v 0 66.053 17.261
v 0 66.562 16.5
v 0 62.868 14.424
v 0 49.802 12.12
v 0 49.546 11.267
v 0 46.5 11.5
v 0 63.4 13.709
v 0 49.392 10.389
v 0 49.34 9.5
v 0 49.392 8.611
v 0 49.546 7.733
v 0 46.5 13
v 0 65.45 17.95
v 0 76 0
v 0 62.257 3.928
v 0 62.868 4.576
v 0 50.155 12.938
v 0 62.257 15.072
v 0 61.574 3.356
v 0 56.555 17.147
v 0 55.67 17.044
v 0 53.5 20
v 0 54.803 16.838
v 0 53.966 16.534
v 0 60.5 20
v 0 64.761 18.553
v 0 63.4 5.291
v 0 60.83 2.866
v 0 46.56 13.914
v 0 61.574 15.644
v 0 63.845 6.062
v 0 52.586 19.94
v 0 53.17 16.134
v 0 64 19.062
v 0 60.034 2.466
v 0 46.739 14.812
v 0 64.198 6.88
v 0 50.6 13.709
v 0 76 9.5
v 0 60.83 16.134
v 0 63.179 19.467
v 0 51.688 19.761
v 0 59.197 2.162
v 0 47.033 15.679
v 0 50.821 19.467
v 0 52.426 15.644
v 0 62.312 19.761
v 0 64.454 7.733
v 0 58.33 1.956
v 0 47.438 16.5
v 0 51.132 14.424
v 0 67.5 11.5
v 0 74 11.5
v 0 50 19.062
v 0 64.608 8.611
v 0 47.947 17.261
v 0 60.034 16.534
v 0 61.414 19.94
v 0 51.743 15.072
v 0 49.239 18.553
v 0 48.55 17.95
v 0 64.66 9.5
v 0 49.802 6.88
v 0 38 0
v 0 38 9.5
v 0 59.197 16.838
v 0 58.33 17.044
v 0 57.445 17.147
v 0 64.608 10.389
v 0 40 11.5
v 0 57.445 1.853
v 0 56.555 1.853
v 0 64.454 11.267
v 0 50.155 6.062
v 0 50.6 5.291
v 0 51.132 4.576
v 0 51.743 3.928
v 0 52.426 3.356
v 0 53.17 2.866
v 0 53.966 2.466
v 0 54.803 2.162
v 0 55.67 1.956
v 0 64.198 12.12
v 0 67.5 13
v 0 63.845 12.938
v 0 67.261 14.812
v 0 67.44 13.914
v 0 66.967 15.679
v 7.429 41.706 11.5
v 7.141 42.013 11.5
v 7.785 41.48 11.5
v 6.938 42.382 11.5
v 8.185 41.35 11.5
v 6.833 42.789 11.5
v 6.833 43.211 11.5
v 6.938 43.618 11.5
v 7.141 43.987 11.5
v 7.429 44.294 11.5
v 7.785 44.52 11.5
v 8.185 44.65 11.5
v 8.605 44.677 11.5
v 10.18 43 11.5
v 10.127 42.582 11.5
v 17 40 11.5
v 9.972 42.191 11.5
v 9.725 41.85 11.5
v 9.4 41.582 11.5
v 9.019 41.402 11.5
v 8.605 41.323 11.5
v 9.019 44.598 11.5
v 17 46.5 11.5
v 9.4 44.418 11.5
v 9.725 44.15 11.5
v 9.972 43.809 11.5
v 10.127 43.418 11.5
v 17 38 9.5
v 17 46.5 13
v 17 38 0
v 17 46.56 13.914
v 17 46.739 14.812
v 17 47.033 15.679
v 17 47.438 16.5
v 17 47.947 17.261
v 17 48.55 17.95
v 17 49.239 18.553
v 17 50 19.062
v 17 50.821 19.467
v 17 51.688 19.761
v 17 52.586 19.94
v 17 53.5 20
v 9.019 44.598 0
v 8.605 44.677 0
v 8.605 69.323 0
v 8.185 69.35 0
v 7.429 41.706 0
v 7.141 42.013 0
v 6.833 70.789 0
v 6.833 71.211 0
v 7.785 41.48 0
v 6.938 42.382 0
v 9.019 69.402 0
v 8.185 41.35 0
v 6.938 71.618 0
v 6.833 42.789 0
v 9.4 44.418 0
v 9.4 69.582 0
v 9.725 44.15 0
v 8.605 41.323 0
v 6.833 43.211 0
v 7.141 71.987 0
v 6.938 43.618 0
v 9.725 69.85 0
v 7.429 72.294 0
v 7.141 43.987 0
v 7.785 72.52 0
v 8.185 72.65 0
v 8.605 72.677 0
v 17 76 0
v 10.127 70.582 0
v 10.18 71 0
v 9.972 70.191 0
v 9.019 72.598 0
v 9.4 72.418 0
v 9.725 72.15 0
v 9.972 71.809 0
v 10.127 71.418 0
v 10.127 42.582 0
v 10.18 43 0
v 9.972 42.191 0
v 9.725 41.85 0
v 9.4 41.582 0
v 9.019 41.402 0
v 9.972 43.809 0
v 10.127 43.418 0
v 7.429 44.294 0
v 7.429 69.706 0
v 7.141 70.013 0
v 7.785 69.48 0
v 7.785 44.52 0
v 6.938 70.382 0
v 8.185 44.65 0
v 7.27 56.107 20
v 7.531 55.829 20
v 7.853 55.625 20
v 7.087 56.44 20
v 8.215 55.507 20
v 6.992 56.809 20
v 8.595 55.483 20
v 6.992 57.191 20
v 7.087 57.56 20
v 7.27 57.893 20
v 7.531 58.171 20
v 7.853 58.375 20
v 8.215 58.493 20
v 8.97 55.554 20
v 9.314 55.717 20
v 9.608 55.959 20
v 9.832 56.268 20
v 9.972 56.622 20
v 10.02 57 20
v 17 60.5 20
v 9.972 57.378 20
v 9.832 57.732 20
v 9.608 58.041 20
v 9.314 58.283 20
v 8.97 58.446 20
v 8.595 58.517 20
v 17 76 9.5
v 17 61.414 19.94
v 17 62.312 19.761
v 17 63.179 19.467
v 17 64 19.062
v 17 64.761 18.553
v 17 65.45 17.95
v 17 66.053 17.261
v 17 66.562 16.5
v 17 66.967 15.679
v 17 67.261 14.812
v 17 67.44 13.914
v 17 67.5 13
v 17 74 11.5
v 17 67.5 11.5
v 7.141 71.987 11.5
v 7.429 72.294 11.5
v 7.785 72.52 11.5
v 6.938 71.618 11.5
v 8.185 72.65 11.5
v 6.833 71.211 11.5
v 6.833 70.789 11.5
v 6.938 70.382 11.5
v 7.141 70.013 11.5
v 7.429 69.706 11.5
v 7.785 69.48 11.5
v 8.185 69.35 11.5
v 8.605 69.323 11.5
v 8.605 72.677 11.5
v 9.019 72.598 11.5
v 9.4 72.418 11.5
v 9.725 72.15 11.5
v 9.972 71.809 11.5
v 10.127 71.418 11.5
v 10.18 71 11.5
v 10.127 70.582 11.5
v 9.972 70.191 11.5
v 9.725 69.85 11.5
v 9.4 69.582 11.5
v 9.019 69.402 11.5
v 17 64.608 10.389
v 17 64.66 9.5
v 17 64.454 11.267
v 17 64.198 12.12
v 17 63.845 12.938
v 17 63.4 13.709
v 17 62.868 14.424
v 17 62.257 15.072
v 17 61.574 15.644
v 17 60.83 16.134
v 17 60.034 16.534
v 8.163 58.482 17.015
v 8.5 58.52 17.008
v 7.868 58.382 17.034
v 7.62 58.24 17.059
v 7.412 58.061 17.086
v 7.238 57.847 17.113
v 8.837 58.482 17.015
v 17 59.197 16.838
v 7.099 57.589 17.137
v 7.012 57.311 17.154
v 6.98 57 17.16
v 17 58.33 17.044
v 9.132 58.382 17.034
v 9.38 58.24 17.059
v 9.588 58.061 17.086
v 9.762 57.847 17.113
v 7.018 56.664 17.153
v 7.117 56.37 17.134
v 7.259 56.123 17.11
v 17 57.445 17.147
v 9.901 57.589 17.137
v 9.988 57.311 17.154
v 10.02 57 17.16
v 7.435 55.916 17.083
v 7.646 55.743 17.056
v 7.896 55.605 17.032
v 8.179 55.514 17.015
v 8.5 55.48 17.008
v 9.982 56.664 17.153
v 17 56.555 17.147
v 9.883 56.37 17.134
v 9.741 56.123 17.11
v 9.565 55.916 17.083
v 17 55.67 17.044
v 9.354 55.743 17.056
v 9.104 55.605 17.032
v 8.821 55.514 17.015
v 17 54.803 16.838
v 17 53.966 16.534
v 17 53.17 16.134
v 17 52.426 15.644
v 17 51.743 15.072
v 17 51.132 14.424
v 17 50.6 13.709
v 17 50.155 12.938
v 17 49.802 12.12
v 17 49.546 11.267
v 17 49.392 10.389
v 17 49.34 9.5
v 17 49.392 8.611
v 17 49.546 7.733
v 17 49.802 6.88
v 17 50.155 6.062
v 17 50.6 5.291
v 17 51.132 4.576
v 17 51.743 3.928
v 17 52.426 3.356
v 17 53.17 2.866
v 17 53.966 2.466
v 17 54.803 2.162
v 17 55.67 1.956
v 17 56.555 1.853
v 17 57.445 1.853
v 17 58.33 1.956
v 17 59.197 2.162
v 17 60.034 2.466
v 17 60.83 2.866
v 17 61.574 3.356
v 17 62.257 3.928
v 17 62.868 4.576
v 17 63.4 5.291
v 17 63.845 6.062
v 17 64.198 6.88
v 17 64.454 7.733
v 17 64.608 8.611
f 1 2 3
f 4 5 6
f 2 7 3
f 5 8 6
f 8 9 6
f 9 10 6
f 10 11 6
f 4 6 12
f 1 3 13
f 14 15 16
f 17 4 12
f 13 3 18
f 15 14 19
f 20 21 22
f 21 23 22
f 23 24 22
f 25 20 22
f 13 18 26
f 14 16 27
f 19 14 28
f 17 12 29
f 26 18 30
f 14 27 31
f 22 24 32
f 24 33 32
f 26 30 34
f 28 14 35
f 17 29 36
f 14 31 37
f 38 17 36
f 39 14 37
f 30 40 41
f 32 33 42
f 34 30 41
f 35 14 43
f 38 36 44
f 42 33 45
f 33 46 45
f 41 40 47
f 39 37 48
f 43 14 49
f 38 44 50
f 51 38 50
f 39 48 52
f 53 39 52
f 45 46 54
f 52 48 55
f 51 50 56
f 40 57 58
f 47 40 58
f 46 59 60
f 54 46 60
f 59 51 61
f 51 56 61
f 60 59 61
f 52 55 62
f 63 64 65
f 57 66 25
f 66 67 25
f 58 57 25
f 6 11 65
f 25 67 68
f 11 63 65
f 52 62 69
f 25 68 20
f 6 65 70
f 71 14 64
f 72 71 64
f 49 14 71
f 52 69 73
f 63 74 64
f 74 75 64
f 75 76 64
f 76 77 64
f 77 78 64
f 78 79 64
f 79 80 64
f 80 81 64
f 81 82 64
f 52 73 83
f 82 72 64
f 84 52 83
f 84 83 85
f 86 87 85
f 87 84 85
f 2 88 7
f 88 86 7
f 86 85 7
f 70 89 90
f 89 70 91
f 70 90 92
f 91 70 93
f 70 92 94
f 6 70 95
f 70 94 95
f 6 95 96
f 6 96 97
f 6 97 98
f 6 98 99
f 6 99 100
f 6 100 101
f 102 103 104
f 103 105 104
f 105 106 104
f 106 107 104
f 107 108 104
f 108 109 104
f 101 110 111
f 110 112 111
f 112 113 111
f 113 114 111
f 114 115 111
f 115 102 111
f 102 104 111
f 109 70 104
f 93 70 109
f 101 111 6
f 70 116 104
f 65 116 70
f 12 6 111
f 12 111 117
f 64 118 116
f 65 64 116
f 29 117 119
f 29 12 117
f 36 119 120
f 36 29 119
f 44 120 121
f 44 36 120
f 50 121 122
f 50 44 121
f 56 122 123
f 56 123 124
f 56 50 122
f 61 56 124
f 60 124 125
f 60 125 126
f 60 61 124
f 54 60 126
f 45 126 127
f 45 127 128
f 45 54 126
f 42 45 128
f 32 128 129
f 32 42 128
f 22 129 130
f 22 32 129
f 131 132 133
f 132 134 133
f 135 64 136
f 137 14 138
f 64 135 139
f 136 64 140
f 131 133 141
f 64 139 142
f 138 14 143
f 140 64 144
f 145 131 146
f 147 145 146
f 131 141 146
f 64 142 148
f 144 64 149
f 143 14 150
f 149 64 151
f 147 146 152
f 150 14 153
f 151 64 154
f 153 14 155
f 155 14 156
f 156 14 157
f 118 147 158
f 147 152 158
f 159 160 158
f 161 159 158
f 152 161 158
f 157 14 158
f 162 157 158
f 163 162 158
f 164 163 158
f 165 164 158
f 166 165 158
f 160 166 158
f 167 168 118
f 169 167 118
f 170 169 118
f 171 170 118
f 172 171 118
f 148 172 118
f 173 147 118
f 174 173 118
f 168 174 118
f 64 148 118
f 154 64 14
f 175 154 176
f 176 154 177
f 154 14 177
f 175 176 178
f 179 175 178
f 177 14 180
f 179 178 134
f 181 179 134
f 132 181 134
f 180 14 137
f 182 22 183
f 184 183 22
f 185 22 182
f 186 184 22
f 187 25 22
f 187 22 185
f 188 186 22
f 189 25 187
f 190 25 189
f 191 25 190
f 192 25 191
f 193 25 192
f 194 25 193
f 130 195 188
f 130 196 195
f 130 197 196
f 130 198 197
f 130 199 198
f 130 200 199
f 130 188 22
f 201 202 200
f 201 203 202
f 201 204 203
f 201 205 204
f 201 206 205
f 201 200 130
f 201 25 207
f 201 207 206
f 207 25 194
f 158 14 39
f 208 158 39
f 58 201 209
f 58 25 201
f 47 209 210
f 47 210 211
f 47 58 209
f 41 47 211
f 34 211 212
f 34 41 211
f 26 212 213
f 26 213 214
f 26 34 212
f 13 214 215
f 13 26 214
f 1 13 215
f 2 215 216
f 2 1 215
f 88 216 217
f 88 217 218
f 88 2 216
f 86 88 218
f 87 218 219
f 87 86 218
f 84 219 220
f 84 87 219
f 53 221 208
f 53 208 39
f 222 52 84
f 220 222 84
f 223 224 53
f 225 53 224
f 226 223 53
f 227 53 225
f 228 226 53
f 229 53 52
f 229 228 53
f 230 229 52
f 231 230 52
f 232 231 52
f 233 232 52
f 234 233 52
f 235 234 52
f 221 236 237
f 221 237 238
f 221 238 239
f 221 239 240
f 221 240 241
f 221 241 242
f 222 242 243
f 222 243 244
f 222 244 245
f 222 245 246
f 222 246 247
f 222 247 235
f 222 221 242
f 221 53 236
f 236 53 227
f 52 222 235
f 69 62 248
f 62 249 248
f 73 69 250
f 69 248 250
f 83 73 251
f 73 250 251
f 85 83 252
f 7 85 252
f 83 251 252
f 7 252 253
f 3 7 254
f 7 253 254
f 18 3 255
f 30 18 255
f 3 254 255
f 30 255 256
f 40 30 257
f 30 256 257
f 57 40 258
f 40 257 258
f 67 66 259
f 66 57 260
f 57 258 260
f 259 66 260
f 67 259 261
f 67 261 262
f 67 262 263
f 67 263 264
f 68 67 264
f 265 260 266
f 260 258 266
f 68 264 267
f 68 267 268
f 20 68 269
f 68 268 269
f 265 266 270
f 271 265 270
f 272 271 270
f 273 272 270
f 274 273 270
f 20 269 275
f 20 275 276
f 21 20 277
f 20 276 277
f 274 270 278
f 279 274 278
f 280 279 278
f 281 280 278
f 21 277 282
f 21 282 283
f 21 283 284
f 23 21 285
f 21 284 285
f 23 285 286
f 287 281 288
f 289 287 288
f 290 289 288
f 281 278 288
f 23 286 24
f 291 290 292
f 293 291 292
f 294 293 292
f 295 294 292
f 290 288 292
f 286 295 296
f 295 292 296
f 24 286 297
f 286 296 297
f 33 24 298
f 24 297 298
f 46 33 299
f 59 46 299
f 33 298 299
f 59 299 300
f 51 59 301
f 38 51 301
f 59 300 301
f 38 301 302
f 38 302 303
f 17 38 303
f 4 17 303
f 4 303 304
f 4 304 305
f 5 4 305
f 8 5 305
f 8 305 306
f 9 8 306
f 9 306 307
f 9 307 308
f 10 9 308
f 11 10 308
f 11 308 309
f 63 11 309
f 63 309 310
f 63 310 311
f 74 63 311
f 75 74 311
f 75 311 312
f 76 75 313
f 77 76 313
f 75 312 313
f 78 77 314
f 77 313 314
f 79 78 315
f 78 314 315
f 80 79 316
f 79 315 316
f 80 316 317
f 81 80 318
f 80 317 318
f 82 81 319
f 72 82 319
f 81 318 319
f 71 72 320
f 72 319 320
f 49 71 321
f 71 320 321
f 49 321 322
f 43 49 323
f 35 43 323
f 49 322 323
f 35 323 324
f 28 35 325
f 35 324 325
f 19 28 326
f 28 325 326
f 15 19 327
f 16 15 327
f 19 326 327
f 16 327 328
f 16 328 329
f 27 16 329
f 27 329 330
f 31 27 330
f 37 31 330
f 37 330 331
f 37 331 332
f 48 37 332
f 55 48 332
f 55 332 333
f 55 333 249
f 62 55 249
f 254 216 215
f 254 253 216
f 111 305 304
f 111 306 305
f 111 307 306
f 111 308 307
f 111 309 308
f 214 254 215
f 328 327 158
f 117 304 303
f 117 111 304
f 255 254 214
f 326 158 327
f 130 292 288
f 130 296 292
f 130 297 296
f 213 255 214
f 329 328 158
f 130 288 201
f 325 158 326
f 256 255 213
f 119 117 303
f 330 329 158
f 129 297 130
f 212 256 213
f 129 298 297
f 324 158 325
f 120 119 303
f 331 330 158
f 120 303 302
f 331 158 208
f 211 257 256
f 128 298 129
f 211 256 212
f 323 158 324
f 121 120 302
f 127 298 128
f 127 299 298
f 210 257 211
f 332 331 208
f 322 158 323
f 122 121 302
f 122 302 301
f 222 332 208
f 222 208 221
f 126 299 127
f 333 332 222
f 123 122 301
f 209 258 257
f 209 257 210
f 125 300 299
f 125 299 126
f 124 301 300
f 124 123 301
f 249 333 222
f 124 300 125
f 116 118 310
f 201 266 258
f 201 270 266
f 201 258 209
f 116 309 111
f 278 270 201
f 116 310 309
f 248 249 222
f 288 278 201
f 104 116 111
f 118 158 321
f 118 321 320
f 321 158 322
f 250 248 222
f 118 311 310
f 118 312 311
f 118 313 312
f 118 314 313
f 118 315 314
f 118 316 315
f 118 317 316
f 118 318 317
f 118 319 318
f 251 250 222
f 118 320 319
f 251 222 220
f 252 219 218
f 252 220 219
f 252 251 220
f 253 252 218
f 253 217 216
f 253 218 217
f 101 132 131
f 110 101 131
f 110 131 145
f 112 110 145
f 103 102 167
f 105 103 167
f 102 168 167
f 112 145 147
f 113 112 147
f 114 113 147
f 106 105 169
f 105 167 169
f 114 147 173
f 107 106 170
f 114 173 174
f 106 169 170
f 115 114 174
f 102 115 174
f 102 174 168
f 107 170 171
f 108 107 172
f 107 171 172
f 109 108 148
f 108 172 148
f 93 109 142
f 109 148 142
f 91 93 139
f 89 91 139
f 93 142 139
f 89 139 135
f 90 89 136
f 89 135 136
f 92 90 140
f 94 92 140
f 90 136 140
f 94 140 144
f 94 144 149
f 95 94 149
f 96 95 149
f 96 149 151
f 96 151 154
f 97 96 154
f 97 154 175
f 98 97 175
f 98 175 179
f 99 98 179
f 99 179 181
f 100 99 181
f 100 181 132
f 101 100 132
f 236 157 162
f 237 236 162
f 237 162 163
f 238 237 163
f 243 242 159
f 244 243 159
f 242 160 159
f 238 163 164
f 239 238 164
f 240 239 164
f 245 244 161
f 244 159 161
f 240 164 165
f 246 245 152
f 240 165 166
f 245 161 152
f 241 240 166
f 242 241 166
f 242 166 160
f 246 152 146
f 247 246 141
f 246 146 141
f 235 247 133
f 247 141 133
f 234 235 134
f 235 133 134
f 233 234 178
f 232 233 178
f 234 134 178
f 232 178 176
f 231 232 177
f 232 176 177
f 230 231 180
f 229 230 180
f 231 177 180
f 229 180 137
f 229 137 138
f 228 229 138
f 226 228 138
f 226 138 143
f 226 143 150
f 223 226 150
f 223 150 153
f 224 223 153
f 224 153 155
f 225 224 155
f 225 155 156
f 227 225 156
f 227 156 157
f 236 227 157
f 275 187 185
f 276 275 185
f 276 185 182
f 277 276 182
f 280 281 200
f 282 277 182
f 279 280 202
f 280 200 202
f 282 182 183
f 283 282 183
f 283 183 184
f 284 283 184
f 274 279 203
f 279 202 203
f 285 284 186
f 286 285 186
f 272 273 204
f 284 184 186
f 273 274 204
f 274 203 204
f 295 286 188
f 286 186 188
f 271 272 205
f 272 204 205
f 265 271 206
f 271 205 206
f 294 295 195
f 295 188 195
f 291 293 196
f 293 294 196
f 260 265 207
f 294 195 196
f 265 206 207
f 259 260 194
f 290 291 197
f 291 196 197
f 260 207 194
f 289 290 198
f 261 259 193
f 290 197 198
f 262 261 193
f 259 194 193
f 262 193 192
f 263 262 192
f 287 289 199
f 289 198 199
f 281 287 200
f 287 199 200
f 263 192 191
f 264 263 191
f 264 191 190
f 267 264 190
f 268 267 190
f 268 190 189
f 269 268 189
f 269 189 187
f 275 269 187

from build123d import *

# Parameters (mm, degrees)
BOX_W           = 17
BOX_H           = 38
BOX_DEPTH       = 20
SKETCH_R        = 7.66
SKETCH_W        = 8.5
SKETCH_H        = 8.5
POCKET_DEPTH    = 17.001
SKETCH005_R     = 1.52
POCKET001_DEPTH = 5
SKETCH006_R     = 1.68
POCKET002_DEPTH = 13
FILLET_R        = 7
CHAMFER_SIZE    = 2


with BuildPart() as part:
    # Box → Box (new body)
    with BuildSketch(Plane(origin=(0, 38, 0), x_dir=(1, 0, 0), z_dir=(0, 0, 1))):
        with Locations((8.5, 19)):
            Rectangle(BOX_W, BOX_H)
    extrude(amount=BOX_DEPTH)

    # Sketch → Pocket (cut, through all)
    with BuildSketch(Plane(origin=(17, 38, 0), x_dir=(0, 1, 0), z_dir=(1, 0, 0))):
        with Locations((19, 9.5)):
            Circle(SKETCH_R)
        with Locations((4.25, 15.75)):
            Rectangle(SKETCH_W, SKETCH_H)
        with Locations((33.75, 15.75)):
            Rectangle(SKETCH_W, SKETCH_H)
    extrude(amount=-POCKET_DEPTH, mode=Mode.SUBTRACT)

    # Sketch005 → Pocket001 (cut)
    with BuildSketch(Plane(origin=(0, 38, 20), x_dir=(1, 0, 0), z_dir=(0, 0, 1))):
        with Locations((8.5, 19)):
            Circle(SKETCH005_R)
    extrude(amount=-POCKET001_DEPTH, mode=Mode.SUBTRACT)

    # Sketch006 → Pocket002 (cut)
    with BuildSketch(Plane(origin=(0, 38, 0), x_dir=(1, 0, 0), z_dir=(0, 0, -1))):
        with Locations((8.5, -33)):
            Circle(SKETCH006_R)
        with Locations((8.5, -5)):
            Circle(SKETCH006_R)
    extrude(amount=-POCKET002_DEPTH, mode=Mode.SUBTRACT)

    # Fillet
    fillet_edges = [part.edges().sort_by_distance(p)[0] for p in [
        (8.5, 46.5, 20),
        (8.5, 67.5, 20),
    ]]
    fillet(fillet_edges, radius=FILLET_R)

    # Chamfer
    chamfer_edges = [part.edges().sort_by_distance(p)[0] for p in [
        (8.5, 38, 11.5),
        (8.5, 76, 11.5),
    ]]
    chamfer(chamfer_edges, length=CHAMFER_SIZE)


solid = part.part
